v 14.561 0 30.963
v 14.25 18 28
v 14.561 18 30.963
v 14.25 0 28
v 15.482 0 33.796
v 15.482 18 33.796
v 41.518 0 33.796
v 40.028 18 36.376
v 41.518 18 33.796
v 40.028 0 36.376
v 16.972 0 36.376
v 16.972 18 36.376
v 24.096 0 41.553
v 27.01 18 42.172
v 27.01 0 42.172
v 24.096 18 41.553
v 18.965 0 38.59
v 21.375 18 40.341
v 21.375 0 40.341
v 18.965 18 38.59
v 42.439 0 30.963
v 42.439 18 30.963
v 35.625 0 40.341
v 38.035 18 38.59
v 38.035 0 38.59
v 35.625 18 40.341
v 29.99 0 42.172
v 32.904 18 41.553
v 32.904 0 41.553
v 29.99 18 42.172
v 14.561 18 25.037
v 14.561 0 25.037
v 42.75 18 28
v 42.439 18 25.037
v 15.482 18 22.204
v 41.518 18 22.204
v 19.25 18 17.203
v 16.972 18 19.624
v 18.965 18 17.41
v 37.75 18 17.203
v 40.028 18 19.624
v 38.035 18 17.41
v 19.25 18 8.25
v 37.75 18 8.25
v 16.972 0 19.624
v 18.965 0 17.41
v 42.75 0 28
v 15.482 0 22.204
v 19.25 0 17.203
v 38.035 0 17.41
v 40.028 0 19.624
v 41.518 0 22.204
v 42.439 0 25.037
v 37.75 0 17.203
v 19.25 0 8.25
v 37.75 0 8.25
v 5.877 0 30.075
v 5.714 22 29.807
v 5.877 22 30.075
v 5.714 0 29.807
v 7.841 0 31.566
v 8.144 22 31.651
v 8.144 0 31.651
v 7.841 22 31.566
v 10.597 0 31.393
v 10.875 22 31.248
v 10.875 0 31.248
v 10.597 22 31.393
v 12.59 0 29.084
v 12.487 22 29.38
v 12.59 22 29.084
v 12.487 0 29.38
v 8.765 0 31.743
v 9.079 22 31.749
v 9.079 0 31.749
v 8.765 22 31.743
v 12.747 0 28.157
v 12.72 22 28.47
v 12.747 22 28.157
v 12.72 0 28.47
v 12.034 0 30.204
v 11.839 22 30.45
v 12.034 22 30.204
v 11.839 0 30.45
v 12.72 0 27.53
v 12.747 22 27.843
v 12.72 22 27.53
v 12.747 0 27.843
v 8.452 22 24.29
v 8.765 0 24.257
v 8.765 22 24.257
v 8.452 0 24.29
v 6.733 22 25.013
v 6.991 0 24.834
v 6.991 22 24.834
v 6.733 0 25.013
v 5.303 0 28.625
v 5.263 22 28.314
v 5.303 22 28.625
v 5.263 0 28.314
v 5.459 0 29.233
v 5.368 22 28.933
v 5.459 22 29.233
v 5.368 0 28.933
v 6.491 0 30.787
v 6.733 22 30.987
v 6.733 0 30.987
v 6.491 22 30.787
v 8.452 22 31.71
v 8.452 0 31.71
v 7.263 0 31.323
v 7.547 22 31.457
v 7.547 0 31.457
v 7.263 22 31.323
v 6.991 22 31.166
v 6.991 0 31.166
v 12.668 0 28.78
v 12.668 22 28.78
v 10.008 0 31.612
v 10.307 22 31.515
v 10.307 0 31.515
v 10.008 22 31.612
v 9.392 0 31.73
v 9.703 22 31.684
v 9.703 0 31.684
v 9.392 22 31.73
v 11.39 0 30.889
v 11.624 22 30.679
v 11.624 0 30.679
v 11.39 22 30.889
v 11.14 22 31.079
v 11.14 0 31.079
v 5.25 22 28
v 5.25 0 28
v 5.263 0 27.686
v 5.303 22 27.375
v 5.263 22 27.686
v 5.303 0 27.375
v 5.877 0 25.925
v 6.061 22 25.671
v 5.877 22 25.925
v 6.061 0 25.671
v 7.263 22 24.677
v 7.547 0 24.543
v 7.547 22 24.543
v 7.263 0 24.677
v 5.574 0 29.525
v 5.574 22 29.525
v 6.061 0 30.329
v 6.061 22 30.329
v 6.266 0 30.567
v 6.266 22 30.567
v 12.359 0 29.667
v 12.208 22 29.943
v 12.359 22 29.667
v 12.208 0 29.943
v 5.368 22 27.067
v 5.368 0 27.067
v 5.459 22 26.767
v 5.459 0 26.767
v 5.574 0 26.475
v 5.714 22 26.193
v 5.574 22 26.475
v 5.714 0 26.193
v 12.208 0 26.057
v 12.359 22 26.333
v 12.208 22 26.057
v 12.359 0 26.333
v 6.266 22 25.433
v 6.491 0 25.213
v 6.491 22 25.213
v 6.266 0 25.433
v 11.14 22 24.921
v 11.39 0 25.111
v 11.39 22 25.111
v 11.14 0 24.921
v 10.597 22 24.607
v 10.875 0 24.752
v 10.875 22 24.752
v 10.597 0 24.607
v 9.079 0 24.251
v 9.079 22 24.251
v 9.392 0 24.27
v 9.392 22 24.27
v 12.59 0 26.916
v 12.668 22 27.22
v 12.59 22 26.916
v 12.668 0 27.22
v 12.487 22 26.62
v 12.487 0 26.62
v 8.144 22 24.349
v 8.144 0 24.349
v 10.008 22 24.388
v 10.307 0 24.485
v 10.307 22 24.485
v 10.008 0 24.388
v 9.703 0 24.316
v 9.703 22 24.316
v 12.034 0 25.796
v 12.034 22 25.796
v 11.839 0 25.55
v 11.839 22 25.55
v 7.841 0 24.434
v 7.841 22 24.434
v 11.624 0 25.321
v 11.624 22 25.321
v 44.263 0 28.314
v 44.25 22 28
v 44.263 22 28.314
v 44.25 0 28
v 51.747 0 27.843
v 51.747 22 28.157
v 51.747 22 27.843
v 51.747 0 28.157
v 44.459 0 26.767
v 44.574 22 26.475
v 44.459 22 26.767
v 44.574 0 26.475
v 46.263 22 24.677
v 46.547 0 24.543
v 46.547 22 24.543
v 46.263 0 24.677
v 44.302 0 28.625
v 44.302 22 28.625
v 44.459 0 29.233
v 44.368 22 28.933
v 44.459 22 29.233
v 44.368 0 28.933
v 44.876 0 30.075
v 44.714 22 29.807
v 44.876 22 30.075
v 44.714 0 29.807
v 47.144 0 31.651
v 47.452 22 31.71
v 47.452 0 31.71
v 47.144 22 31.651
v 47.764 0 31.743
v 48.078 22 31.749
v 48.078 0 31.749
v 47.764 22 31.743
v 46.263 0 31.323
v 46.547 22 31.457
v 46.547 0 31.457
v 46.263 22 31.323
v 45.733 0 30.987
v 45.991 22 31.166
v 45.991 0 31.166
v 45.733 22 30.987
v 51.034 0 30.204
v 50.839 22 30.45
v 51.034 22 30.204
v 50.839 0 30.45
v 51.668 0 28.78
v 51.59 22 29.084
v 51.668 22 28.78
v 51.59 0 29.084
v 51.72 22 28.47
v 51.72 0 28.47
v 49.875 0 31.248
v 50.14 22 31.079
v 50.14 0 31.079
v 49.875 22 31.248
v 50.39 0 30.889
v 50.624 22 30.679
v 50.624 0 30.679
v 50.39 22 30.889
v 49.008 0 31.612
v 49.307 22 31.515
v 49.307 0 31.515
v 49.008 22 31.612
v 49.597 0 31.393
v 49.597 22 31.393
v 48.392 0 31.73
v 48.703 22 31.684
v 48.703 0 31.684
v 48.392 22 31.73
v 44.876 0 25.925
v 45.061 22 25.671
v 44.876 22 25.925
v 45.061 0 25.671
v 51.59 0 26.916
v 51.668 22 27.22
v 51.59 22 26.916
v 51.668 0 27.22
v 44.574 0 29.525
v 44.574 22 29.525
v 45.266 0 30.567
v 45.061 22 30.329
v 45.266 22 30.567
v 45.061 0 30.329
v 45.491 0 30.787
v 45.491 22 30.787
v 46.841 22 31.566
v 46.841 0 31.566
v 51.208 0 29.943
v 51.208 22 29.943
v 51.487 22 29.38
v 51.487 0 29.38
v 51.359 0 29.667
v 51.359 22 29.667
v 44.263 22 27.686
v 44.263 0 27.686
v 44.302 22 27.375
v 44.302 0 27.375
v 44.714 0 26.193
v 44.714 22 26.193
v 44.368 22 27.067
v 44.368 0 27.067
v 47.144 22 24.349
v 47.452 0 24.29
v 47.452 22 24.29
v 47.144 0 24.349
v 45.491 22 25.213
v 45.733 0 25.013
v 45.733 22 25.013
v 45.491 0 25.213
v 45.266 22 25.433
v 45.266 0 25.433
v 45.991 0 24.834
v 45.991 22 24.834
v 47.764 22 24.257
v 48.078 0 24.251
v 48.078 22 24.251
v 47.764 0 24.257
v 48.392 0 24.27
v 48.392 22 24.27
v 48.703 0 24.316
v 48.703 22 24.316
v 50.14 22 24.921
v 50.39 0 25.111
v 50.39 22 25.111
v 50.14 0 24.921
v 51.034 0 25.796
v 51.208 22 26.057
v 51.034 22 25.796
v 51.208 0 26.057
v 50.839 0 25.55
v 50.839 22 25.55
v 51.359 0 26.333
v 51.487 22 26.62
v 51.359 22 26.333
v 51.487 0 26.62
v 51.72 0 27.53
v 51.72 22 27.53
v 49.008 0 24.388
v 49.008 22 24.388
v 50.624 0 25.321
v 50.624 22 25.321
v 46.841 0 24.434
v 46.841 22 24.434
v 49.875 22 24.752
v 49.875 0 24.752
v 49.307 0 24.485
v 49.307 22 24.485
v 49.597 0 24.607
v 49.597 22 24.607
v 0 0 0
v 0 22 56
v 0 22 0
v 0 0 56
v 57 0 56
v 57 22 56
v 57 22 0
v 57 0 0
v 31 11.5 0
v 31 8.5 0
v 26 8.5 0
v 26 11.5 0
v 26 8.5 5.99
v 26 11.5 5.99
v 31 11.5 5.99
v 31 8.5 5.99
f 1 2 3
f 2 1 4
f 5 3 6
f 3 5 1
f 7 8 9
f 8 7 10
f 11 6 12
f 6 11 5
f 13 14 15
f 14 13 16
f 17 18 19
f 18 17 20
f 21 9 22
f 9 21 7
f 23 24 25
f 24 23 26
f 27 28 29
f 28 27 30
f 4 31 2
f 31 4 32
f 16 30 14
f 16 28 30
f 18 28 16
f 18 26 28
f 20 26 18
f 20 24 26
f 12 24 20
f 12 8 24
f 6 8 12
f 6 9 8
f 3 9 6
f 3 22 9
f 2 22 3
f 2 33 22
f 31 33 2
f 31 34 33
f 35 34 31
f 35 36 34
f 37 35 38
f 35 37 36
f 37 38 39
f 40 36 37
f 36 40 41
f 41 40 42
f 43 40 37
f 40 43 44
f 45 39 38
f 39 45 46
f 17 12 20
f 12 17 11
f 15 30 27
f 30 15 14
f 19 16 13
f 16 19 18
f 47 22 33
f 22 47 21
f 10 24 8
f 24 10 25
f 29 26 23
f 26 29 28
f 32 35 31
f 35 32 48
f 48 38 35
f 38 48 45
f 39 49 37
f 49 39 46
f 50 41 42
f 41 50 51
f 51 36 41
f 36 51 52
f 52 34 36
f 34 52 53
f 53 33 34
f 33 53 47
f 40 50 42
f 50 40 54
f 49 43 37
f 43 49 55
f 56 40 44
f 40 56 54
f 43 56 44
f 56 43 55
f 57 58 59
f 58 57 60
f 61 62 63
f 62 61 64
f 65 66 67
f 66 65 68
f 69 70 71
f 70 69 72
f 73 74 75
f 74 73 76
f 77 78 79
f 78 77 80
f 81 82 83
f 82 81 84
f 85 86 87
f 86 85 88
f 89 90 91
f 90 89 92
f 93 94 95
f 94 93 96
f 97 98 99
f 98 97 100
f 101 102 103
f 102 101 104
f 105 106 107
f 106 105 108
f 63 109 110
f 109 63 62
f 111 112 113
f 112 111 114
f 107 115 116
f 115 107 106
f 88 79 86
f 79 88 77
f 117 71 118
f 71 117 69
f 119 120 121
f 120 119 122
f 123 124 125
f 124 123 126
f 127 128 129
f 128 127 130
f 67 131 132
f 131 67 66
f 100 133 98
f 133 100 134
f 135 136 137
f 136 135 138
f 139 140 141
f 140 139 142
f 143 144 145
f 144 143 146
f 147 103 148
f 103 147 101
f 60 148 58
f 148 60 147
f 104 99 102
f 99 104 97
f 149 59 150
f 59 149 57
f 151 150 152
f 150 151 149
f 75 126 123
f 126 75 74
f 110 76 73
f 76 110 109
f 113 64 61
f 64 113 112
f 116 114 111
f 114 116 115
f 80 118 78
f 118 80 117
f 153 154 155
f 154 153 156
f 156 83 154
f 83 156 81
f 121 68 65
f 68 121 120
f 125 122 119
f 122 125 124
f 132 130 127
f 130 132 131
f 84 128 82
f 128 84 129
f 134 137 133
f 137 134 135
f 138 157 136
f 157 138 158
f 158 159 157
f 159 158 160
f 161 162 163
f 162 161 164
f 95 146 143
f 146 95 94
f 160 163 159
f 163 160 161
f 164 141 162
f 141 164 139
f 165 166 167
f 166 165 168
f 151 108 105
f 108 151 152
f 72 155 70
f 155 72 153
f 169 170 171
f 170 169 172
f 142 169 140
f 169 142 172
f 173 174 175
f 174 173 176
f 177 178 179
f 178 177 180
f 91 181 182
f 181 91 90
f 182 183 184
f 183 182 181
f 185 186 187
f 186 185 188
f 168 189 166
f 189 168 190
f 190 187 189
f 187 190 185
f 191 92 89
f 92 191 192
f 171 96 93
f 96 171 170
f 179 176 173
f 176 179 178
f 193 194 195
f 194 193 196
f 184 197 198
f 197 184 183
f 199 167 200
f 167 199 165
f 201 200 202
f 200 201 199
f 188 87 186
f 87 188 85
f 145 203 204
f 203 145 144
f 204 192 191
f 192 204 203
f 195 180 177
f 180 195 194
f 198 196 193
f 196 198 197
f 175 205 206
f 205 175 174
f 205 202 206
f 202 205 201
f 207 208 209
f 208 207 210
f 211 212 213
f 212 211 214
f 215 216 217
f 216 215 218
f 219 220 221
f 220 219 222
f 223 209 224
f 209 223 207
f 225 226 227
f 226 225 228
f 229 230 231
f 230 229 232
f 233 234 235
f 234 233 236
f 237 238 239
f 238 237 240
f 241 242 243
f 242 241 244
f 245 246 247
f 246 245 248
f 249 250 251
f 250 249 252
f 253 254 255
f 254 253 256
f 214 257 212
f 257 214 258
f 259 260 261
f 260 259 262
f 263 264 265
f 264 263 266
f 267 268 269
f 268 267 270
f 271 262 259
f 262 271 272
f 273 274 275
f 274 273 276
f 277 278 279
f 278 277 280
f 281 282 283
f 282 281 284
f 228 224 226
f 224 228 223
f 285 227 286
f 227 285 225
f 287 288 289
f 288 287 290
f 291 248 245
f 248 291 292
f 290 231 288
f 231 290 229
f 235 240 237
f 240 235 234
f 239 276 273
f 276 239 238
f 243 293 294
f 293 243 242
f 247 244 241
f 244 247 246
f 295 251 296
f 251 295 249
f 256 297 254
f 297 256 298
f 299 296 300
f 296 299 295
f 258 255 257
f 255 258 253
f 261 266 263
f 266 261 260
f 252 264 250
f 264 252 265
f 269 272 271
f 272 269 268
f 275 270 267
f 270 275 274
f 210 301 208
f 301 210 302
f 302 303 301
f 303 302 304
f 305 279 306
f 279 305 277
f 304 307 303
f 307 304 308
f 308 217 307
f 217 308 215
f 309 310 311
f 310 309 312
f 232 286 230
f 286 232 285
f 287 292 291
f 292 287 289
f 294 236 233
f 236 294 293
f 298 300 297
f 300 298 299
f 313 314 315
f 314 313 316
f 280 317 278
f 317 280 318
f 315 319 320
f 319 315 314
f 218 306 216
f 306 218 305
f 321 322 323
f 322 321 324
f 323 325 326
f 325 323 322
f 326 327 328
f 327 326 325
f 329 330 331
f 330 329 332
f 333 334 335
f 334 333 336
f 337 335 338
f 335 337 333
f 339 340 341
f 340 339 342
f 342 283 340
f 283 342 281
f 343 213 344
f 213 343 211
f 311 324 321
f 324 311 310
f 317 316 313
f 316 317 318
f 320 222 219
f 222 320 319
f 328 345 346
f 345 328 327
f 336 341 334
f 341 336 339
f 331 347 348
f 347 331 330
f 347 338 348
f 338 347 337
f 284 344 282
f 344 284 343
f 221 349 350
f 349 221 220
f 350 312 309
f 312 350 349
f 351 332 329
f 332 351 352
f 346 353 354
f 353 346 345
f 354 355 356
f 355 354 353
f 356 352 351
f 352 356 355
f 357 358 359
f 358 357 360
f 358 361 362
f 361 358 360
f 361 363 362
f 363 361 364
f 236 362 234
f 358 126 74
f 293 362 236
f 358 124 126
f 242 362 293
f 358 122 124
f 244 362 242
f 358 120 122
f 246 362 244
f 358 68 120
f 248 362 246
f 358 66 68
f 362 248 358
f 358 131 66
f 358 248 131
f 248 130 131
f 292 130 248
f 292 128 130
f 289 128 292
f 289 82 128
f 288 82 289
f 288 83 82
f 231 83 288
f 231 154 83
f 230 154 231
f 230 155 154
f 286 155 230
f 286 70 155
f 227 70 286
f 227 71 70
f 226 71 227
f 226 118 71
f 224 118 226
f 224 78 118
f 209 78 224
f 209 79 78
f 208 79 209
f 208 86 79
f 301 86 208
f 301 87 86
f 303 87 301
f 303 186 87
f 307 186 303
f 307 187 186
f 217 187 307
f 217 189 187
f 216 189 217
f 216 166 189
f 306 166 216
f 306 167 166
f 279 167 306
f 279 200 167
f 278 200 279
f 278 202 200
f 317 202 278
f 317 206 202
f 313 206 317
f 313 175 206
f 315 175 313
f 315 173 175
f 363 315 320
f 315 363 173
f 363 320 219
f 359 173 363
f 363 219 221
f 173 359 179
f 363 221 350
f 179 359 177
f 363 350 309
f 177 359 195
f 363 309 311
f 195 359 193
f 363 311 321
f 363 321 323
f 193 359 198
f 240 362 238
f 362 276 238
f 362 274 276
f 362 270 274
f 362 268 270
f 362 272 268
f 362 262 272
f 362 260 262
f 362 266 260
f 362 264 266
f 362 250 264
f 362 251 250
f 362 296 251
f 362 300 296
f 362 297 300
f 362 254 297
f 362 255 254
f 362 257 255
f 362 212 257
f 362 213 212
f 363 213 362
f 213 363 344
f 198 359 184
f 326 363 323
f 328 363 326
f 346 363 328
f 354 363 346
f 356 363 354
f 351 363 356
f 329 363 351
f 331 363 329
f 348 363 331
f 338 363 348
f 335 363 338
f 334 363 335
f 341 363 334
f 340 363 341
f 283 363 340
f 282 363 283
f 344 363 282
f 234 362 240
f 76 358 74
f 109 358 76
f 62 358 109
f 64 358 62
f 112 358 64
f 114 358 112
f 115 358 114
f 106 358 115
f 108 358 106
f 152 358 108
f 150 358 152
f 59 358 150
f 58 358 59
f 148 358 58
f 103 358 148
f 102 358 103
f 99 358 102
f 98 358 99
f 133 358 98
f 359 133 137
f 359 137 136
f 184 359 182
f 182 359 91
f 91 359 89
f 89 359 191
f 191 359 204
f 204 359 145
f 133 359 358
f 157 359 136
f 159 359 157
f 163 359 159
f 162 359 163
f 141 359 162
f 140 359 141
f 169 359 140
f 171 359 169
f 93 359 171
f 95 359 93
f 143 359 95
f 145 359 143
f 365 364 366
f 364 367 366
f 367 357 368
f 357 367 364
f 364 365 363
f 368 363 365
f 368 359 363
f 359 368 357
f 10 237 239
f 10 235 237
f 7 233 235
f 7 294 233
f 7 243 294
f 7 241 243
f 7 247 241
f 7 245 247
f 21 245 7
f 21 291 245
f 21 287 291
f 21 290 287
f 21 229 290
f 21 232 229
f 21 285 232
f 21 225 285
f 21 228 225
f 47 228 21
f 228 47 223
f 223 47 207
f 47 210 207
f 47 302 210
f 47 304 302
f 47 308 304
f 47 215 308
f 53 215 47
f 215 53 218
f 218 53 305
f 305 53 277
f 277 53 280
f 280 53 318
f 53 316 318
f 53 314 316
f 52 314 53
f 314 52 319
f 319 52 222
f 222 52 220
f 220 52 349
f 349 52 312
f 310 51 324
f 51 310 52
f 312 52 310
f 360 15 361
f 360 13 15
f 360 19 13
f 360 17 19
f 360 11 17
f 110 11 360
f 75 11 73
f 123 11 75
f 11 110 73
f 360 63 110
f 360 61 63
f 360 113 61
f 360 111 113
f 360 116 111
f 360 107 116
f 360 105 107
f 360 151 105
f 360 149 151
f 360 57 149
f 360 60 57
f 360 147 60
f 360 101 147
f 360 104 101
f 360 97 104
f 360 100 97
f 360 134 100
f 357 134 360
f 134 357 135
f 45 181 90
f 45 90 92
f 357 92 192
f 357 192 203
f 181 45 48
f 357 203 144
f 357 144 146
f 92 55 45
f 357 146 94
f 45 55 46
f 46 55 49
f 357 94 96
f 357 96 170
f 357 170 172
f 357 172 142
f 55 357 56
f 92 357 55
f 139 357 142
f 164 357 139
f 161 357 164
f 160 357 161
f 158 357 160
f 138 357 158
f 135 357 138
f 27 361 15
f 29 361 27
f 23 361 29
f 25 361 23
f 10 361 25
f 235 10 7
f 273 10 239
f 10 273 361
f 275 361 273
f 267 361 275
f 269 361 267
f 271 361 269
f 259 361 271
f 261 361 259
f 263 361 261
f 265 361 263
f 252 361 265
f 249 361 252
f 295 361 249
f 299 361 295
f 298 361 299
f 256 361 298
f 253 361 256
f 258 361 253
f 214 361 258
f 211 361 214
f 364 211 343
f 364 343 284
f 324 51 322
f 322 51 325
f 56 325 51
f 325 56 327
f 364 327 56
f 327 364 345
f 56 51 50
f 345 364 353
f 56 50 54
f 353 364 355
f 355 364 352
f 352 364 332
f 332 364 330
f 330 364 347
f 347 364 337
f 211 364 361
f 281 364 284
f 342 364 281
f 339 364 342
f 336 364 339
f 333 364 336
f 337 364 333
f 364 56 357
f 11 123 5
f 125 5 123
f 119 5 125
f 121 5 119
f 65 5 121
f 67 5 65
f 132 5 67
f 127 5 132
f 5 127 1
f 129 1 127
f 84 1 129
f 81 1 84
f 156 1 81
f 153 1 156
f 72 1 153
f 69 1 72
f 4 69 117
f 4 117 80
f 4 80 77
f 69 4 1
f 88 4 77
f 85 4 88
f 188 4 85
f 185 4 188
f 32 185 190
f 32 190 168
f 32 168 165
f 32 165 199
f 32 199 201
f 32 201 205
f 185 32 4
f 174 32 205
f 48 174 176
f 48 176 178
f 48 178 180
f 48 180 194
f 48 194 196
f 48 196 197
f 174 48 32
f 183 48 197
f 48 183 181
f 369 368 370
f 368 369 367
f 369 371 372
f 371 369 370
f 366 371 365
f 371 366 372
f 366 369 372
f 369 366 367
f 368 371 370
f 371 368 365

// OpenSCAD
// file: metrics.scad
/* [General] */
mount_wall_thickness = 2;


/* [Motor] */
motor_d = 28.5;
motor_h = 20;

motor_square_w = 18.5;
motor_square_h = 5.5 * 2;

motor_mount_w = 7.5;

motor_hole_w = 10.5;

/* [Motor Ending] */
motor_ending_w = 3;
motor_ending_h = 5;
motor_ending_l = 6;

/* [Motor Mount] */
motor_mount_thickness = 7 + mount_wall_thickness;


/* [Hidden] */
_fn = 75;
preview_margin = 0.01;

/* [Laser pointer] */
laser_pointer_holder_l = 20;
laser_pointer_d = 13;
screw_terminal_length = 14;

/* [Screw] */
//the diameter of the screw
screw_d = 4;
// main file
include <metrics.scad>


module second_motor_holder(){

    difference(){
        //the main mount of the motor
        cube([motor_d + motor_mount_w + motor_hole_w * 2,
            motor_h + mount_wall_thickness,
            motor_d + motor_mount_w + laser_pointer_holder_l]);

        translate([0, -mount_wall_thickness, (motor_d + motor_mount_w + laser_pointer_holder_l) / 2]){
            motor_hole();
        }
        
        //hole for the knob of the motor on the base plate
        translate([(motor_d + motor_mount_w + motor_hole_w * 2) / 2 - motor_ending_h/2,
                (laser_pointer_holder_l) / 2 - motor_ending_w/2,
                -preview_margin]){
            cube([motor_ending_h, motor_ending_w, motor_ending_l]);
        }
    }
}

module motor_hole(){
    //motor (round section)
    translate([(motor_d + motor_mount_w + motor_hole_w*2) / 2,
            0,
            0]){
        rotate([90, 0, 180]){
            cylinder(h=motor_h, d1=motor_d, d2=motor_d);
        }
    }
    //motor (square section)
    translate([(motor_d + motor_mount_w + motor_hole_w*2) / 2 - motor_square_w/2,
           0,
            //middle of circle - diameter of circle / 2 - halfe of the square part / 2
            - motor_d / 2 - motor_square_h/2]){
            cube([motor_square_w, motor_h, motor_square_h]);
    }

    //holes for screws
    space_next_to_hole = (motor_d + motor_mount_w + motor_hole_w * 2 - motor_d) / 2;
    //left
    translate([-motor_hole_w/2 + space_next_to_hole,
            0,
            0]){
        rotate([90, 0, 180]){
            cylinder(h=laser_pointer_holder_l + motor_hole_w + preview_margin*2,
                    d1=motor_mount_w, d2=motor_mount_w,
                    $fn=_fn);
        }
    }
    //right
    translate([motor_hole_w/2 + space_next_to_hole + motor_d,
            0,
            0]){
        rotate([90, 0, 180]){
            cylinder(h=laser_pointer_holder_l + motor_hole_w + preview_margin*2,
                    d1=motor_mount_w, d2=motor_mount_w,
                    $fn=_fn);
        }
    }

}

//test
second_motor_holder();


//animation
$vpt = [(motor_d + motor_mount_w + motor_hole_w * 2) / 2,
            laser_pointer_holder_l / 2,
            (motor_d + motor_mount_w + laser_pointer_holder_l) / 2];

$vpr = [60, 0, 360 * $t];

$vpd = 400;
